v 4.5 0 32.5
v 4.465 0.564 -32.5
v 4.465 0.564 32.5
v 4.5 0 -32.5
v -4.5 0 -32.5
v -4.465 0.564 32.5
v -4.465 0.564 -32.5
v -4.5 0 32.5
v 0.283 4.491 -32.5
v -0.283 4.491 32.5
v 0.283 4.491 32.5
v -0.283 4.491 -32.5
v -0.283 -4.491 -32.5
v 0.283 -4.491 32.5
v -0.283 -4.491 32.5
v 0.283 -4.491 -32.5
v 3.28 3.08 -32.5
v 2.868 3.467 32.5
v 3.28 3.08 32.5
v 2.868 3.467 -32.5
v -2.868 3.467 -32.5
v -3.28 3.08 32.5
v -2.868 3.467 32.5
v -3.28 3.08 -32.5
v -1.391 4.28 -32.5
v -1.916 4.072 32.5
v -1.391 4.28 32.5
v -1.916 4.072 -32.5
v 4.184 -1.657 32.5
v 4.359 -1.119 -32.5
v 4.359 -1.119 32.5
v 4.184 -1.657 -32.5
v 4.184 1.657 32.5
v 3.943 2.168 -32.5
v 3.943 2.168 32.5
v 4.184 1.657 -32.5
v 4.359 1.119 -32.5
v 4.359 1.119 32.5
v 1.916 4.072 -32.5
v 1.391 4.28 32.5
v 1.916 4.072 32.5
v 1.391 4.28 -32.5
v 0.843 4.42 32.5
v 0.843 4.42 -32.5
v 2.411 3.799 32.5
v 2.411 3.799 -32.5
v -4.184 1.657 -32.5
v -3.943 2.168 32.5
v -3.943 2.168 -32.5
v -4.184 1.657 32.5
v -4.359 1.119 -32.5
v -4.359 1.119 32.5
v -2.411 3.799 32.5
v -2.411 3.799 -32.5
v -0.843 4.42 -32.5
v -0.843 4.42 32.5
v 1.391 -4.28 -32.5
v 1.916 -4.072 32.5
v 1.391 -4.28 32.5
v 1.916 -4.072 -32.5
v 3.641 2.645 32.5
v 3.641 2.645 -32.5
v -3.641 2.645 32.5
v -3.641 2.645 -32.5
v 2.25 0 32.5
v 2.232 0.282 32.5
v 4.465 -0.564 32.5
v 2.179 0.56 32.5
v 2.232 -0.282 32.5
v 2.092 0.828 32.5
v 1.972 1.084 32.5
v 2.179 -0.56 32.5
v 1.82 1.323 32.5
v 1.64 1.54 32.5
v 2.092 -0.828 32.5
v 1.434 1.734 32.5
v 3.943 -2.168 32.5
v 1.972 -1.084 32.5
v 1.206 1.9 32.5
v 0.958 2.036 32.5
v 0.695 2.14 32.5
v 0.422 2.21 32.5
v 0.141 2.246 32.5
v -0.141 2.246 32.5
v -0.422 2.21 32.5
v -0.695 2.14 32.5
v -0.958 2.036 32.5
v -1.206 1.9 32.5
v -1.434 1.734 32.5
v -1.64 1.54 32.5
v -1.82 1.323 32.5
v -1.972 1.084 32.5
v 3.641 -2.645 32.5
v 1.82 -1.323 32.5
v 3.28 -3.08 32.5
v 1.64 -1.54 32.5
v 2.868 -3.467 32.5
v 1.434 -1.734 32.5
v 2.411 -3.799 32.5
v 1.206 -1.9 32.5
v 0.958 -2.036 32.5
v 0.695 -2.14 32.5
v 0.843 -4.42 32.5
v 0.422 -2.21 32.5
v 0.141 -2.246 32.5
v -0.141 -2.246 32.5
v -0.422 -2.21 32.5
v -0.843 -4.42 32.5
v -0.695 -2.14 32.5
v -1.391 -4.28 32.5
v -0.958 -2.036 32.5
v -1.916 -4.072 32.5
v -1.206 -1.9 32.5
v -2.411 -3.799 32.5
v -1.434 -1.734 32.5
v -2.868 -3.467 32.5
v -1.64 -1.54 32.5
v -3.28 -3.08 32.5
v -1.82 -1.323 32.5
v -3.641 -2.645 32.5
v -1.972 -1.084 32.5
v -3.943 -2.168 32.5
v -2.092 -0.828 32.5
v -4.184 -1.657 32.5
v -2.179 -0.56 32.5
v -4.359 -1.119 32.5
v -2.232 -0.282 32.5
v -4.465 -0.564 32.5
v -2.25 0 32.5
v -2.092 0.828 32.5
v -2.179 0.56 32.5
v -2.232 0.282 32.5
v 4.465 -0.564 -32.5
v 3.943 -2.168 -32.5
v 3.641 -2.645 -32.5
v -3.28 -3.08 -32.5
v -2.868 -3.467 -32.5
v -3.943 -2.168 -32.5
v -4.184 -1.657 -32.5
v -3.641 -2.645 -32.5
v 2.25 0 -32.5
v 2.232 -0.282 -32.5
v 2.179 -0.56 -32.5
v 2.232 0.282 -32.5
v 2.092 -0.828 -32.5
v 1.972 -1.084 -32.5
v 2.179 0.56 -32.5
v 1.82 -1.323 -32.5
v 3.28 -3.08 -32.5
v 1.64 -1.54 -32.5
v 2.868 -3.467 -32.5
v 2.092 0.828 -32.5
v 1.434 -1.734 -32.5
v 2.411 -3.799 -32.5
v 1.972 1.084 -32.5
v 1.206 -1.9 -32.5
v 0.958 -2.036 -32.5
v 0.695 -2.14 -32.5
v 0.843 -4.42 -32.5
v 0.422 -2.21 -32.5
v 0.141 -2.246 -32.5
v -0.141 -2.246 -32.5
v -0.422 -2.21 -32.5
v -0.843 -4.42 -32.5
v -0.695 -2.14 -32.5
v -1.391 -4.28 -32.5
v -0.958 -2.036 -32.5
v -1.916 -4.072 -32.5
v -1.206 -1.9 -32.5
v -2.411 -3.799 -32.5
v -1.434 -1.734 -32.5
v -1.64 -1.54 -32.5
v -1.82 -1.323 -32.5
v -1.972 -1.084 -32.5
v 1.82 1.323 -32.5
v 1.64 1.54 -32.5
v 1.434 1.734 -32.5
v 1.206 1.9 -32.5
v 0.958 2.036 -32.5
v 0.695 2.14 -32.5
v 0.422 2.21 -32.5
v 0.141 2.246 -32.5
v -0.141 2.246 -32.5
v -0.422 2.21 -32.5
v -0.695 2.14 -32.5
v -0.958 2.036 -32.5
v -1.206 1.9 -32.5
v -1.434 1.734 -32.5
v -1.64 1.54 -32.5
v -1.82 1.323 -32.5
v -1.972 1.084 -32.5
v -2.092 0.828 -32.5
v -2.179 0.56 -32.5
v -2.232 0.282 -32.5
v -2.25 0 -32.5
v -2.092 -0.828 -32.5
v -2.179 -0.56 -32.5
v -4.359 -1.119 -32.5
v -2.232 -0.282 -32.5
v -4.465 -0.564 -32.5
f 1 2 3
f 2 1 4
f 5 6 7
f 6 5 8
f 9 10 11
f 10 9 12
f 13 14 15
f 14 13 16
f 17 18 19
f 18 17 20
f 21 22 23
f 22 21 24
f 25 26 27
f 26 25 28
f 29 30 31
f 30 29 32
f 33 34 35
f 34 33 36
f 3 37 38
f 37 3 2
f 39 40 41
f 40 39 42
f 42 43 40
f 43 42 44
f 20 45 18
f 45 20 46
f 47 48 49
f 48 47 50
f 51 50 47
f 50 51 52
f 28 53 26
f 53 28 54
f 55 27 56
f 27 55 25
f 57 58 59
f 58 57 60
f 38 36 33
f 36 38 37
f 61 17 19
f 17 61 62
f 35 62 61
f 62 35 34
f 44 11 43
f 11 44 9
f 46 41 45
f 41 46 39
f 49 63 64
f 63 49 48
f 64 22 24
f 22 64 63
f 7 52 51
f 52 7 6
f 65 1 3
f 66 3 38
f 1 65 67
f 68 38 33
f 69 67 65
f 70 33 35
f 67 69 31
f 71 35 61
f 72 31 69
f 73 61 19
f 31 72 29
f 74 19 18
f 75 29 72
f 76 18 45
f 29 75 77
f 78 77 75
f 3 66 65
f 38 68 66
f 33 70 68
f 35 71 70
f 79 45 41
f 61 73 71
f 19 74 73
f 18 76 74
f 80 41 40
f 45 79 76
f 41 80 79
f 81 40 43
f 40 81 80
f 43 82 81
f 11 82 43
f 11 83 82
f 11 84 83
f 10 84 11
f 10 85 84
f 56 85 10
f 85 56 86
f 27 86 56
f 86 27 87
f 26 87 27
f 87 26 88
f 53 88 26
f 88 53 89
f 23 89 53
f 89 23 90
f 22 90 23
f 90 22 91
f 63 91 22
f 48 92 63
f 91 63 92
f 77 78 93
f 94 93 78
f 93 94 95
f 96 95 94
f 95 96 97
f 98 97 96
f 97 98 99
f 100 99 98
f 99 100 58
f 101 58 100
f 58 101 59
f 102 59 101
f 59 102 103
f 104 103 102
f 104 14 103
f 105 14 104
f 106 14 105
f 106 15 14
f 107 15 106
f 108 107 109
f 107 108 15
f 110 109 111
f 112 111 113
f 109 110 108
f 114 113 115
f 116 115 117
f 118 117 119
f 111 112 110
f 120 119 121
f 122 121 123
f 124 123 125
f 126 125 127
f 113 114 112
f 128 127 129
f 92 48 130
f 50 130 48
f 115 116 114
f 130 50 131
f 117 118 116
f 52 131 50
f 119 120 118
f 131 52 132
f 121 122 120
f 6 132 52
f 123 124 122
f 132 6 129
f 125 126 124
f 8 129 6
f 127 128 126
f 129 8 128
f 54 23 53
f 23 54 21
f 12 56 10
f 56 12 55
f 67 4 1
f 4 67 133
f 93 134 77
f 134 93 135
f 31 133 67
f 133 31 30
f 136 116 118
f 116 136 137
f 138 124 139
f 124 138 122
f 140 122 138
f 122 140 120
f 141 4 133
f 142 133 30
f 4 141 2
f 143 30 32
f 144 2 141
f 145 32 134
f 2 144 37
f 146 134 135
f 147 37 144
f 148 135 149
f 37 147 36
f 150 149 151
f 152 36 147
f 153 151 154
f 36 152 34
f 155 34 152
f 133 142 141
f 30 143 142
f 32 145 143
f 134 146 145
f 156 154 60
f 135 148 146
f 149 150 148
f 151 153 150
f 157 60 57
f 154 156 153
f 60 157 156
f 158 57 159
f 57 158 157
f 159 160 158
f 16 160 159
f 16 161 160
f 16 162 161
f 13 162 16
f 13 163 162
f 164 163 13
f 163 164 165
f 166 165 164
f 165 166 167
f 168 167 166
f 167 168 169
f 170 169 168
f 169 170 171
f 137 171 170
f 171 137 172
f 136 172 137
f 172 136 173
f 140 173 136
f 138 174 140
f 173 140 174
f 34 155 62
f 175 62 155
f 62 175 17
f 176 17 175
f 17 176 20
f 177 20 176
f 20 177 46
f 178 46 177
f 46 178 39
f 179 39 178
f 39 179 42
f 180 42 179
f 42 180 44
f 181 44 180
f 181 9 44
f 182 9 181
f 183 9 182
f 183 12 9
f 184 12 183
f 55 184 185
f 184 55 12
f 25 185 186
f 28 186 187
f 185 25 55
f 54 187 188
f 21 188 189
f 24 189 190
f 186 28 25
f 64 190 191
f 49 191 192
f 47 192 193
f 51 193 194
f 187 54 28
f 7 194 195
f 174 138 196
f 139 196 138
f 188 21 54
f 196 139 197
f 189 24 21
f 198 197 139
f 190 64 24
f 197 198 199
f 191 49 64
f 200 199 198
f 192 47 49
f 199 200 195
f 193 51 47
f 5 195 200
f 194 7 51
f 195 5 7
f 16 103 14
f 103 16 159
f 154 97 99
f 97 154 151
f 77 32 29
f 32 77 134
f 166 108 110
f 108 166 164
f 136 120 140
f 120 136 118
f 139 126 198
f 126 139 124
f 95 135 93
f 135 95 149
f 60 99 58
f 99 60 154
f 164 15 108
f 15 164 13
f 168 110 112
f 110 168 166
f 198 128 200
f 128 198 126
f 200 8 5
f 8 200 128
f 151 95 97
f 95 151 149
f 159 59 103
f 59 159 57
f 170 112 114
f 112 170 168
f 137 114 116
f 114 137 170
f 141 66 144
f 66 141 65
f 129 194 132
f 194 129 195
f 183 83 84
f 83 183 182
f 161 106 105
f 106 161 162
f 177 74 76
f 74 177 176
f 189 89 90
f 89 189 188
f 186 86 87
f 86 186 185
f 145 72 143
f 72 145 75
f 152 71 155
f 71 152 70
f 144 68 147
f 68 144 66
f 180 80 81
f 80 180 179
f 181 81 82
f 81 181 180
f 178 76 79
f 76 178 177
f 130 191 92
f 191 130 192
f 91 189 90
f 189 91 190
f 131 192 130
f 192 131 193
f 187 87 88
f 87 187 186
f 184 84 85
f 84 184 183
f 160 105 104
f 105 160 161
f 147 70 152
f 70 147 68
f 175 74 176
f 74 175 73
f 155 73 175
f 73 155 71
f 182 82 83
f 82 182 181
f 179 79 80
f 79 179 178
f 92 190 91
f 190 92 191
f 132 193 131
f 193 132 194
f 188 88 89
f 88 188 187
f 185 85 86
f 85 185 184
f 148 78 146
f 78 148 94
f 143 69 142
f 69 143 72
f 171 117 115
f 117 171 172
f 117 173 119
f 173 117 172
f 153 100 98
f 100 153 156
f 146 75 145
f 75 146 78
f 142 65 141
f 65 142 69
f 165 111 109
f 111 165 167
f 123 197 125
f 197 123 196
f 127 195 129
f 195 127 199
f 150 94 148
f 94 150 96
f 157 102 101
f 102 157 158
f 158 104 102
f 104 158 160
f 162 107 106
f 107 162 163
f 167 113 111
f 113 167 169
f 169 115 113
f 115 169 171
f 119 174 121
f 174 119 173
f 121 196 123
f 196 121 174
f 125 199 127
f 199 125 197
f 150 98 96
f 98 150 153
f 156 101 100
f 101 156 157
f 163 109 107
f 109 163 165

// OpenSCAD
$fn = 50;


difference() {
	union() {
		translate(v = [0, 0, -32.5000000000]) {
			cylinder(h = 65, r = 4.5000000000);
		}
	}
	union() {
		translate(v = [0, 0, -100.0000000000]) {
			cylinder(h = 200, r = 2.2500000000);
		}
	}
}
